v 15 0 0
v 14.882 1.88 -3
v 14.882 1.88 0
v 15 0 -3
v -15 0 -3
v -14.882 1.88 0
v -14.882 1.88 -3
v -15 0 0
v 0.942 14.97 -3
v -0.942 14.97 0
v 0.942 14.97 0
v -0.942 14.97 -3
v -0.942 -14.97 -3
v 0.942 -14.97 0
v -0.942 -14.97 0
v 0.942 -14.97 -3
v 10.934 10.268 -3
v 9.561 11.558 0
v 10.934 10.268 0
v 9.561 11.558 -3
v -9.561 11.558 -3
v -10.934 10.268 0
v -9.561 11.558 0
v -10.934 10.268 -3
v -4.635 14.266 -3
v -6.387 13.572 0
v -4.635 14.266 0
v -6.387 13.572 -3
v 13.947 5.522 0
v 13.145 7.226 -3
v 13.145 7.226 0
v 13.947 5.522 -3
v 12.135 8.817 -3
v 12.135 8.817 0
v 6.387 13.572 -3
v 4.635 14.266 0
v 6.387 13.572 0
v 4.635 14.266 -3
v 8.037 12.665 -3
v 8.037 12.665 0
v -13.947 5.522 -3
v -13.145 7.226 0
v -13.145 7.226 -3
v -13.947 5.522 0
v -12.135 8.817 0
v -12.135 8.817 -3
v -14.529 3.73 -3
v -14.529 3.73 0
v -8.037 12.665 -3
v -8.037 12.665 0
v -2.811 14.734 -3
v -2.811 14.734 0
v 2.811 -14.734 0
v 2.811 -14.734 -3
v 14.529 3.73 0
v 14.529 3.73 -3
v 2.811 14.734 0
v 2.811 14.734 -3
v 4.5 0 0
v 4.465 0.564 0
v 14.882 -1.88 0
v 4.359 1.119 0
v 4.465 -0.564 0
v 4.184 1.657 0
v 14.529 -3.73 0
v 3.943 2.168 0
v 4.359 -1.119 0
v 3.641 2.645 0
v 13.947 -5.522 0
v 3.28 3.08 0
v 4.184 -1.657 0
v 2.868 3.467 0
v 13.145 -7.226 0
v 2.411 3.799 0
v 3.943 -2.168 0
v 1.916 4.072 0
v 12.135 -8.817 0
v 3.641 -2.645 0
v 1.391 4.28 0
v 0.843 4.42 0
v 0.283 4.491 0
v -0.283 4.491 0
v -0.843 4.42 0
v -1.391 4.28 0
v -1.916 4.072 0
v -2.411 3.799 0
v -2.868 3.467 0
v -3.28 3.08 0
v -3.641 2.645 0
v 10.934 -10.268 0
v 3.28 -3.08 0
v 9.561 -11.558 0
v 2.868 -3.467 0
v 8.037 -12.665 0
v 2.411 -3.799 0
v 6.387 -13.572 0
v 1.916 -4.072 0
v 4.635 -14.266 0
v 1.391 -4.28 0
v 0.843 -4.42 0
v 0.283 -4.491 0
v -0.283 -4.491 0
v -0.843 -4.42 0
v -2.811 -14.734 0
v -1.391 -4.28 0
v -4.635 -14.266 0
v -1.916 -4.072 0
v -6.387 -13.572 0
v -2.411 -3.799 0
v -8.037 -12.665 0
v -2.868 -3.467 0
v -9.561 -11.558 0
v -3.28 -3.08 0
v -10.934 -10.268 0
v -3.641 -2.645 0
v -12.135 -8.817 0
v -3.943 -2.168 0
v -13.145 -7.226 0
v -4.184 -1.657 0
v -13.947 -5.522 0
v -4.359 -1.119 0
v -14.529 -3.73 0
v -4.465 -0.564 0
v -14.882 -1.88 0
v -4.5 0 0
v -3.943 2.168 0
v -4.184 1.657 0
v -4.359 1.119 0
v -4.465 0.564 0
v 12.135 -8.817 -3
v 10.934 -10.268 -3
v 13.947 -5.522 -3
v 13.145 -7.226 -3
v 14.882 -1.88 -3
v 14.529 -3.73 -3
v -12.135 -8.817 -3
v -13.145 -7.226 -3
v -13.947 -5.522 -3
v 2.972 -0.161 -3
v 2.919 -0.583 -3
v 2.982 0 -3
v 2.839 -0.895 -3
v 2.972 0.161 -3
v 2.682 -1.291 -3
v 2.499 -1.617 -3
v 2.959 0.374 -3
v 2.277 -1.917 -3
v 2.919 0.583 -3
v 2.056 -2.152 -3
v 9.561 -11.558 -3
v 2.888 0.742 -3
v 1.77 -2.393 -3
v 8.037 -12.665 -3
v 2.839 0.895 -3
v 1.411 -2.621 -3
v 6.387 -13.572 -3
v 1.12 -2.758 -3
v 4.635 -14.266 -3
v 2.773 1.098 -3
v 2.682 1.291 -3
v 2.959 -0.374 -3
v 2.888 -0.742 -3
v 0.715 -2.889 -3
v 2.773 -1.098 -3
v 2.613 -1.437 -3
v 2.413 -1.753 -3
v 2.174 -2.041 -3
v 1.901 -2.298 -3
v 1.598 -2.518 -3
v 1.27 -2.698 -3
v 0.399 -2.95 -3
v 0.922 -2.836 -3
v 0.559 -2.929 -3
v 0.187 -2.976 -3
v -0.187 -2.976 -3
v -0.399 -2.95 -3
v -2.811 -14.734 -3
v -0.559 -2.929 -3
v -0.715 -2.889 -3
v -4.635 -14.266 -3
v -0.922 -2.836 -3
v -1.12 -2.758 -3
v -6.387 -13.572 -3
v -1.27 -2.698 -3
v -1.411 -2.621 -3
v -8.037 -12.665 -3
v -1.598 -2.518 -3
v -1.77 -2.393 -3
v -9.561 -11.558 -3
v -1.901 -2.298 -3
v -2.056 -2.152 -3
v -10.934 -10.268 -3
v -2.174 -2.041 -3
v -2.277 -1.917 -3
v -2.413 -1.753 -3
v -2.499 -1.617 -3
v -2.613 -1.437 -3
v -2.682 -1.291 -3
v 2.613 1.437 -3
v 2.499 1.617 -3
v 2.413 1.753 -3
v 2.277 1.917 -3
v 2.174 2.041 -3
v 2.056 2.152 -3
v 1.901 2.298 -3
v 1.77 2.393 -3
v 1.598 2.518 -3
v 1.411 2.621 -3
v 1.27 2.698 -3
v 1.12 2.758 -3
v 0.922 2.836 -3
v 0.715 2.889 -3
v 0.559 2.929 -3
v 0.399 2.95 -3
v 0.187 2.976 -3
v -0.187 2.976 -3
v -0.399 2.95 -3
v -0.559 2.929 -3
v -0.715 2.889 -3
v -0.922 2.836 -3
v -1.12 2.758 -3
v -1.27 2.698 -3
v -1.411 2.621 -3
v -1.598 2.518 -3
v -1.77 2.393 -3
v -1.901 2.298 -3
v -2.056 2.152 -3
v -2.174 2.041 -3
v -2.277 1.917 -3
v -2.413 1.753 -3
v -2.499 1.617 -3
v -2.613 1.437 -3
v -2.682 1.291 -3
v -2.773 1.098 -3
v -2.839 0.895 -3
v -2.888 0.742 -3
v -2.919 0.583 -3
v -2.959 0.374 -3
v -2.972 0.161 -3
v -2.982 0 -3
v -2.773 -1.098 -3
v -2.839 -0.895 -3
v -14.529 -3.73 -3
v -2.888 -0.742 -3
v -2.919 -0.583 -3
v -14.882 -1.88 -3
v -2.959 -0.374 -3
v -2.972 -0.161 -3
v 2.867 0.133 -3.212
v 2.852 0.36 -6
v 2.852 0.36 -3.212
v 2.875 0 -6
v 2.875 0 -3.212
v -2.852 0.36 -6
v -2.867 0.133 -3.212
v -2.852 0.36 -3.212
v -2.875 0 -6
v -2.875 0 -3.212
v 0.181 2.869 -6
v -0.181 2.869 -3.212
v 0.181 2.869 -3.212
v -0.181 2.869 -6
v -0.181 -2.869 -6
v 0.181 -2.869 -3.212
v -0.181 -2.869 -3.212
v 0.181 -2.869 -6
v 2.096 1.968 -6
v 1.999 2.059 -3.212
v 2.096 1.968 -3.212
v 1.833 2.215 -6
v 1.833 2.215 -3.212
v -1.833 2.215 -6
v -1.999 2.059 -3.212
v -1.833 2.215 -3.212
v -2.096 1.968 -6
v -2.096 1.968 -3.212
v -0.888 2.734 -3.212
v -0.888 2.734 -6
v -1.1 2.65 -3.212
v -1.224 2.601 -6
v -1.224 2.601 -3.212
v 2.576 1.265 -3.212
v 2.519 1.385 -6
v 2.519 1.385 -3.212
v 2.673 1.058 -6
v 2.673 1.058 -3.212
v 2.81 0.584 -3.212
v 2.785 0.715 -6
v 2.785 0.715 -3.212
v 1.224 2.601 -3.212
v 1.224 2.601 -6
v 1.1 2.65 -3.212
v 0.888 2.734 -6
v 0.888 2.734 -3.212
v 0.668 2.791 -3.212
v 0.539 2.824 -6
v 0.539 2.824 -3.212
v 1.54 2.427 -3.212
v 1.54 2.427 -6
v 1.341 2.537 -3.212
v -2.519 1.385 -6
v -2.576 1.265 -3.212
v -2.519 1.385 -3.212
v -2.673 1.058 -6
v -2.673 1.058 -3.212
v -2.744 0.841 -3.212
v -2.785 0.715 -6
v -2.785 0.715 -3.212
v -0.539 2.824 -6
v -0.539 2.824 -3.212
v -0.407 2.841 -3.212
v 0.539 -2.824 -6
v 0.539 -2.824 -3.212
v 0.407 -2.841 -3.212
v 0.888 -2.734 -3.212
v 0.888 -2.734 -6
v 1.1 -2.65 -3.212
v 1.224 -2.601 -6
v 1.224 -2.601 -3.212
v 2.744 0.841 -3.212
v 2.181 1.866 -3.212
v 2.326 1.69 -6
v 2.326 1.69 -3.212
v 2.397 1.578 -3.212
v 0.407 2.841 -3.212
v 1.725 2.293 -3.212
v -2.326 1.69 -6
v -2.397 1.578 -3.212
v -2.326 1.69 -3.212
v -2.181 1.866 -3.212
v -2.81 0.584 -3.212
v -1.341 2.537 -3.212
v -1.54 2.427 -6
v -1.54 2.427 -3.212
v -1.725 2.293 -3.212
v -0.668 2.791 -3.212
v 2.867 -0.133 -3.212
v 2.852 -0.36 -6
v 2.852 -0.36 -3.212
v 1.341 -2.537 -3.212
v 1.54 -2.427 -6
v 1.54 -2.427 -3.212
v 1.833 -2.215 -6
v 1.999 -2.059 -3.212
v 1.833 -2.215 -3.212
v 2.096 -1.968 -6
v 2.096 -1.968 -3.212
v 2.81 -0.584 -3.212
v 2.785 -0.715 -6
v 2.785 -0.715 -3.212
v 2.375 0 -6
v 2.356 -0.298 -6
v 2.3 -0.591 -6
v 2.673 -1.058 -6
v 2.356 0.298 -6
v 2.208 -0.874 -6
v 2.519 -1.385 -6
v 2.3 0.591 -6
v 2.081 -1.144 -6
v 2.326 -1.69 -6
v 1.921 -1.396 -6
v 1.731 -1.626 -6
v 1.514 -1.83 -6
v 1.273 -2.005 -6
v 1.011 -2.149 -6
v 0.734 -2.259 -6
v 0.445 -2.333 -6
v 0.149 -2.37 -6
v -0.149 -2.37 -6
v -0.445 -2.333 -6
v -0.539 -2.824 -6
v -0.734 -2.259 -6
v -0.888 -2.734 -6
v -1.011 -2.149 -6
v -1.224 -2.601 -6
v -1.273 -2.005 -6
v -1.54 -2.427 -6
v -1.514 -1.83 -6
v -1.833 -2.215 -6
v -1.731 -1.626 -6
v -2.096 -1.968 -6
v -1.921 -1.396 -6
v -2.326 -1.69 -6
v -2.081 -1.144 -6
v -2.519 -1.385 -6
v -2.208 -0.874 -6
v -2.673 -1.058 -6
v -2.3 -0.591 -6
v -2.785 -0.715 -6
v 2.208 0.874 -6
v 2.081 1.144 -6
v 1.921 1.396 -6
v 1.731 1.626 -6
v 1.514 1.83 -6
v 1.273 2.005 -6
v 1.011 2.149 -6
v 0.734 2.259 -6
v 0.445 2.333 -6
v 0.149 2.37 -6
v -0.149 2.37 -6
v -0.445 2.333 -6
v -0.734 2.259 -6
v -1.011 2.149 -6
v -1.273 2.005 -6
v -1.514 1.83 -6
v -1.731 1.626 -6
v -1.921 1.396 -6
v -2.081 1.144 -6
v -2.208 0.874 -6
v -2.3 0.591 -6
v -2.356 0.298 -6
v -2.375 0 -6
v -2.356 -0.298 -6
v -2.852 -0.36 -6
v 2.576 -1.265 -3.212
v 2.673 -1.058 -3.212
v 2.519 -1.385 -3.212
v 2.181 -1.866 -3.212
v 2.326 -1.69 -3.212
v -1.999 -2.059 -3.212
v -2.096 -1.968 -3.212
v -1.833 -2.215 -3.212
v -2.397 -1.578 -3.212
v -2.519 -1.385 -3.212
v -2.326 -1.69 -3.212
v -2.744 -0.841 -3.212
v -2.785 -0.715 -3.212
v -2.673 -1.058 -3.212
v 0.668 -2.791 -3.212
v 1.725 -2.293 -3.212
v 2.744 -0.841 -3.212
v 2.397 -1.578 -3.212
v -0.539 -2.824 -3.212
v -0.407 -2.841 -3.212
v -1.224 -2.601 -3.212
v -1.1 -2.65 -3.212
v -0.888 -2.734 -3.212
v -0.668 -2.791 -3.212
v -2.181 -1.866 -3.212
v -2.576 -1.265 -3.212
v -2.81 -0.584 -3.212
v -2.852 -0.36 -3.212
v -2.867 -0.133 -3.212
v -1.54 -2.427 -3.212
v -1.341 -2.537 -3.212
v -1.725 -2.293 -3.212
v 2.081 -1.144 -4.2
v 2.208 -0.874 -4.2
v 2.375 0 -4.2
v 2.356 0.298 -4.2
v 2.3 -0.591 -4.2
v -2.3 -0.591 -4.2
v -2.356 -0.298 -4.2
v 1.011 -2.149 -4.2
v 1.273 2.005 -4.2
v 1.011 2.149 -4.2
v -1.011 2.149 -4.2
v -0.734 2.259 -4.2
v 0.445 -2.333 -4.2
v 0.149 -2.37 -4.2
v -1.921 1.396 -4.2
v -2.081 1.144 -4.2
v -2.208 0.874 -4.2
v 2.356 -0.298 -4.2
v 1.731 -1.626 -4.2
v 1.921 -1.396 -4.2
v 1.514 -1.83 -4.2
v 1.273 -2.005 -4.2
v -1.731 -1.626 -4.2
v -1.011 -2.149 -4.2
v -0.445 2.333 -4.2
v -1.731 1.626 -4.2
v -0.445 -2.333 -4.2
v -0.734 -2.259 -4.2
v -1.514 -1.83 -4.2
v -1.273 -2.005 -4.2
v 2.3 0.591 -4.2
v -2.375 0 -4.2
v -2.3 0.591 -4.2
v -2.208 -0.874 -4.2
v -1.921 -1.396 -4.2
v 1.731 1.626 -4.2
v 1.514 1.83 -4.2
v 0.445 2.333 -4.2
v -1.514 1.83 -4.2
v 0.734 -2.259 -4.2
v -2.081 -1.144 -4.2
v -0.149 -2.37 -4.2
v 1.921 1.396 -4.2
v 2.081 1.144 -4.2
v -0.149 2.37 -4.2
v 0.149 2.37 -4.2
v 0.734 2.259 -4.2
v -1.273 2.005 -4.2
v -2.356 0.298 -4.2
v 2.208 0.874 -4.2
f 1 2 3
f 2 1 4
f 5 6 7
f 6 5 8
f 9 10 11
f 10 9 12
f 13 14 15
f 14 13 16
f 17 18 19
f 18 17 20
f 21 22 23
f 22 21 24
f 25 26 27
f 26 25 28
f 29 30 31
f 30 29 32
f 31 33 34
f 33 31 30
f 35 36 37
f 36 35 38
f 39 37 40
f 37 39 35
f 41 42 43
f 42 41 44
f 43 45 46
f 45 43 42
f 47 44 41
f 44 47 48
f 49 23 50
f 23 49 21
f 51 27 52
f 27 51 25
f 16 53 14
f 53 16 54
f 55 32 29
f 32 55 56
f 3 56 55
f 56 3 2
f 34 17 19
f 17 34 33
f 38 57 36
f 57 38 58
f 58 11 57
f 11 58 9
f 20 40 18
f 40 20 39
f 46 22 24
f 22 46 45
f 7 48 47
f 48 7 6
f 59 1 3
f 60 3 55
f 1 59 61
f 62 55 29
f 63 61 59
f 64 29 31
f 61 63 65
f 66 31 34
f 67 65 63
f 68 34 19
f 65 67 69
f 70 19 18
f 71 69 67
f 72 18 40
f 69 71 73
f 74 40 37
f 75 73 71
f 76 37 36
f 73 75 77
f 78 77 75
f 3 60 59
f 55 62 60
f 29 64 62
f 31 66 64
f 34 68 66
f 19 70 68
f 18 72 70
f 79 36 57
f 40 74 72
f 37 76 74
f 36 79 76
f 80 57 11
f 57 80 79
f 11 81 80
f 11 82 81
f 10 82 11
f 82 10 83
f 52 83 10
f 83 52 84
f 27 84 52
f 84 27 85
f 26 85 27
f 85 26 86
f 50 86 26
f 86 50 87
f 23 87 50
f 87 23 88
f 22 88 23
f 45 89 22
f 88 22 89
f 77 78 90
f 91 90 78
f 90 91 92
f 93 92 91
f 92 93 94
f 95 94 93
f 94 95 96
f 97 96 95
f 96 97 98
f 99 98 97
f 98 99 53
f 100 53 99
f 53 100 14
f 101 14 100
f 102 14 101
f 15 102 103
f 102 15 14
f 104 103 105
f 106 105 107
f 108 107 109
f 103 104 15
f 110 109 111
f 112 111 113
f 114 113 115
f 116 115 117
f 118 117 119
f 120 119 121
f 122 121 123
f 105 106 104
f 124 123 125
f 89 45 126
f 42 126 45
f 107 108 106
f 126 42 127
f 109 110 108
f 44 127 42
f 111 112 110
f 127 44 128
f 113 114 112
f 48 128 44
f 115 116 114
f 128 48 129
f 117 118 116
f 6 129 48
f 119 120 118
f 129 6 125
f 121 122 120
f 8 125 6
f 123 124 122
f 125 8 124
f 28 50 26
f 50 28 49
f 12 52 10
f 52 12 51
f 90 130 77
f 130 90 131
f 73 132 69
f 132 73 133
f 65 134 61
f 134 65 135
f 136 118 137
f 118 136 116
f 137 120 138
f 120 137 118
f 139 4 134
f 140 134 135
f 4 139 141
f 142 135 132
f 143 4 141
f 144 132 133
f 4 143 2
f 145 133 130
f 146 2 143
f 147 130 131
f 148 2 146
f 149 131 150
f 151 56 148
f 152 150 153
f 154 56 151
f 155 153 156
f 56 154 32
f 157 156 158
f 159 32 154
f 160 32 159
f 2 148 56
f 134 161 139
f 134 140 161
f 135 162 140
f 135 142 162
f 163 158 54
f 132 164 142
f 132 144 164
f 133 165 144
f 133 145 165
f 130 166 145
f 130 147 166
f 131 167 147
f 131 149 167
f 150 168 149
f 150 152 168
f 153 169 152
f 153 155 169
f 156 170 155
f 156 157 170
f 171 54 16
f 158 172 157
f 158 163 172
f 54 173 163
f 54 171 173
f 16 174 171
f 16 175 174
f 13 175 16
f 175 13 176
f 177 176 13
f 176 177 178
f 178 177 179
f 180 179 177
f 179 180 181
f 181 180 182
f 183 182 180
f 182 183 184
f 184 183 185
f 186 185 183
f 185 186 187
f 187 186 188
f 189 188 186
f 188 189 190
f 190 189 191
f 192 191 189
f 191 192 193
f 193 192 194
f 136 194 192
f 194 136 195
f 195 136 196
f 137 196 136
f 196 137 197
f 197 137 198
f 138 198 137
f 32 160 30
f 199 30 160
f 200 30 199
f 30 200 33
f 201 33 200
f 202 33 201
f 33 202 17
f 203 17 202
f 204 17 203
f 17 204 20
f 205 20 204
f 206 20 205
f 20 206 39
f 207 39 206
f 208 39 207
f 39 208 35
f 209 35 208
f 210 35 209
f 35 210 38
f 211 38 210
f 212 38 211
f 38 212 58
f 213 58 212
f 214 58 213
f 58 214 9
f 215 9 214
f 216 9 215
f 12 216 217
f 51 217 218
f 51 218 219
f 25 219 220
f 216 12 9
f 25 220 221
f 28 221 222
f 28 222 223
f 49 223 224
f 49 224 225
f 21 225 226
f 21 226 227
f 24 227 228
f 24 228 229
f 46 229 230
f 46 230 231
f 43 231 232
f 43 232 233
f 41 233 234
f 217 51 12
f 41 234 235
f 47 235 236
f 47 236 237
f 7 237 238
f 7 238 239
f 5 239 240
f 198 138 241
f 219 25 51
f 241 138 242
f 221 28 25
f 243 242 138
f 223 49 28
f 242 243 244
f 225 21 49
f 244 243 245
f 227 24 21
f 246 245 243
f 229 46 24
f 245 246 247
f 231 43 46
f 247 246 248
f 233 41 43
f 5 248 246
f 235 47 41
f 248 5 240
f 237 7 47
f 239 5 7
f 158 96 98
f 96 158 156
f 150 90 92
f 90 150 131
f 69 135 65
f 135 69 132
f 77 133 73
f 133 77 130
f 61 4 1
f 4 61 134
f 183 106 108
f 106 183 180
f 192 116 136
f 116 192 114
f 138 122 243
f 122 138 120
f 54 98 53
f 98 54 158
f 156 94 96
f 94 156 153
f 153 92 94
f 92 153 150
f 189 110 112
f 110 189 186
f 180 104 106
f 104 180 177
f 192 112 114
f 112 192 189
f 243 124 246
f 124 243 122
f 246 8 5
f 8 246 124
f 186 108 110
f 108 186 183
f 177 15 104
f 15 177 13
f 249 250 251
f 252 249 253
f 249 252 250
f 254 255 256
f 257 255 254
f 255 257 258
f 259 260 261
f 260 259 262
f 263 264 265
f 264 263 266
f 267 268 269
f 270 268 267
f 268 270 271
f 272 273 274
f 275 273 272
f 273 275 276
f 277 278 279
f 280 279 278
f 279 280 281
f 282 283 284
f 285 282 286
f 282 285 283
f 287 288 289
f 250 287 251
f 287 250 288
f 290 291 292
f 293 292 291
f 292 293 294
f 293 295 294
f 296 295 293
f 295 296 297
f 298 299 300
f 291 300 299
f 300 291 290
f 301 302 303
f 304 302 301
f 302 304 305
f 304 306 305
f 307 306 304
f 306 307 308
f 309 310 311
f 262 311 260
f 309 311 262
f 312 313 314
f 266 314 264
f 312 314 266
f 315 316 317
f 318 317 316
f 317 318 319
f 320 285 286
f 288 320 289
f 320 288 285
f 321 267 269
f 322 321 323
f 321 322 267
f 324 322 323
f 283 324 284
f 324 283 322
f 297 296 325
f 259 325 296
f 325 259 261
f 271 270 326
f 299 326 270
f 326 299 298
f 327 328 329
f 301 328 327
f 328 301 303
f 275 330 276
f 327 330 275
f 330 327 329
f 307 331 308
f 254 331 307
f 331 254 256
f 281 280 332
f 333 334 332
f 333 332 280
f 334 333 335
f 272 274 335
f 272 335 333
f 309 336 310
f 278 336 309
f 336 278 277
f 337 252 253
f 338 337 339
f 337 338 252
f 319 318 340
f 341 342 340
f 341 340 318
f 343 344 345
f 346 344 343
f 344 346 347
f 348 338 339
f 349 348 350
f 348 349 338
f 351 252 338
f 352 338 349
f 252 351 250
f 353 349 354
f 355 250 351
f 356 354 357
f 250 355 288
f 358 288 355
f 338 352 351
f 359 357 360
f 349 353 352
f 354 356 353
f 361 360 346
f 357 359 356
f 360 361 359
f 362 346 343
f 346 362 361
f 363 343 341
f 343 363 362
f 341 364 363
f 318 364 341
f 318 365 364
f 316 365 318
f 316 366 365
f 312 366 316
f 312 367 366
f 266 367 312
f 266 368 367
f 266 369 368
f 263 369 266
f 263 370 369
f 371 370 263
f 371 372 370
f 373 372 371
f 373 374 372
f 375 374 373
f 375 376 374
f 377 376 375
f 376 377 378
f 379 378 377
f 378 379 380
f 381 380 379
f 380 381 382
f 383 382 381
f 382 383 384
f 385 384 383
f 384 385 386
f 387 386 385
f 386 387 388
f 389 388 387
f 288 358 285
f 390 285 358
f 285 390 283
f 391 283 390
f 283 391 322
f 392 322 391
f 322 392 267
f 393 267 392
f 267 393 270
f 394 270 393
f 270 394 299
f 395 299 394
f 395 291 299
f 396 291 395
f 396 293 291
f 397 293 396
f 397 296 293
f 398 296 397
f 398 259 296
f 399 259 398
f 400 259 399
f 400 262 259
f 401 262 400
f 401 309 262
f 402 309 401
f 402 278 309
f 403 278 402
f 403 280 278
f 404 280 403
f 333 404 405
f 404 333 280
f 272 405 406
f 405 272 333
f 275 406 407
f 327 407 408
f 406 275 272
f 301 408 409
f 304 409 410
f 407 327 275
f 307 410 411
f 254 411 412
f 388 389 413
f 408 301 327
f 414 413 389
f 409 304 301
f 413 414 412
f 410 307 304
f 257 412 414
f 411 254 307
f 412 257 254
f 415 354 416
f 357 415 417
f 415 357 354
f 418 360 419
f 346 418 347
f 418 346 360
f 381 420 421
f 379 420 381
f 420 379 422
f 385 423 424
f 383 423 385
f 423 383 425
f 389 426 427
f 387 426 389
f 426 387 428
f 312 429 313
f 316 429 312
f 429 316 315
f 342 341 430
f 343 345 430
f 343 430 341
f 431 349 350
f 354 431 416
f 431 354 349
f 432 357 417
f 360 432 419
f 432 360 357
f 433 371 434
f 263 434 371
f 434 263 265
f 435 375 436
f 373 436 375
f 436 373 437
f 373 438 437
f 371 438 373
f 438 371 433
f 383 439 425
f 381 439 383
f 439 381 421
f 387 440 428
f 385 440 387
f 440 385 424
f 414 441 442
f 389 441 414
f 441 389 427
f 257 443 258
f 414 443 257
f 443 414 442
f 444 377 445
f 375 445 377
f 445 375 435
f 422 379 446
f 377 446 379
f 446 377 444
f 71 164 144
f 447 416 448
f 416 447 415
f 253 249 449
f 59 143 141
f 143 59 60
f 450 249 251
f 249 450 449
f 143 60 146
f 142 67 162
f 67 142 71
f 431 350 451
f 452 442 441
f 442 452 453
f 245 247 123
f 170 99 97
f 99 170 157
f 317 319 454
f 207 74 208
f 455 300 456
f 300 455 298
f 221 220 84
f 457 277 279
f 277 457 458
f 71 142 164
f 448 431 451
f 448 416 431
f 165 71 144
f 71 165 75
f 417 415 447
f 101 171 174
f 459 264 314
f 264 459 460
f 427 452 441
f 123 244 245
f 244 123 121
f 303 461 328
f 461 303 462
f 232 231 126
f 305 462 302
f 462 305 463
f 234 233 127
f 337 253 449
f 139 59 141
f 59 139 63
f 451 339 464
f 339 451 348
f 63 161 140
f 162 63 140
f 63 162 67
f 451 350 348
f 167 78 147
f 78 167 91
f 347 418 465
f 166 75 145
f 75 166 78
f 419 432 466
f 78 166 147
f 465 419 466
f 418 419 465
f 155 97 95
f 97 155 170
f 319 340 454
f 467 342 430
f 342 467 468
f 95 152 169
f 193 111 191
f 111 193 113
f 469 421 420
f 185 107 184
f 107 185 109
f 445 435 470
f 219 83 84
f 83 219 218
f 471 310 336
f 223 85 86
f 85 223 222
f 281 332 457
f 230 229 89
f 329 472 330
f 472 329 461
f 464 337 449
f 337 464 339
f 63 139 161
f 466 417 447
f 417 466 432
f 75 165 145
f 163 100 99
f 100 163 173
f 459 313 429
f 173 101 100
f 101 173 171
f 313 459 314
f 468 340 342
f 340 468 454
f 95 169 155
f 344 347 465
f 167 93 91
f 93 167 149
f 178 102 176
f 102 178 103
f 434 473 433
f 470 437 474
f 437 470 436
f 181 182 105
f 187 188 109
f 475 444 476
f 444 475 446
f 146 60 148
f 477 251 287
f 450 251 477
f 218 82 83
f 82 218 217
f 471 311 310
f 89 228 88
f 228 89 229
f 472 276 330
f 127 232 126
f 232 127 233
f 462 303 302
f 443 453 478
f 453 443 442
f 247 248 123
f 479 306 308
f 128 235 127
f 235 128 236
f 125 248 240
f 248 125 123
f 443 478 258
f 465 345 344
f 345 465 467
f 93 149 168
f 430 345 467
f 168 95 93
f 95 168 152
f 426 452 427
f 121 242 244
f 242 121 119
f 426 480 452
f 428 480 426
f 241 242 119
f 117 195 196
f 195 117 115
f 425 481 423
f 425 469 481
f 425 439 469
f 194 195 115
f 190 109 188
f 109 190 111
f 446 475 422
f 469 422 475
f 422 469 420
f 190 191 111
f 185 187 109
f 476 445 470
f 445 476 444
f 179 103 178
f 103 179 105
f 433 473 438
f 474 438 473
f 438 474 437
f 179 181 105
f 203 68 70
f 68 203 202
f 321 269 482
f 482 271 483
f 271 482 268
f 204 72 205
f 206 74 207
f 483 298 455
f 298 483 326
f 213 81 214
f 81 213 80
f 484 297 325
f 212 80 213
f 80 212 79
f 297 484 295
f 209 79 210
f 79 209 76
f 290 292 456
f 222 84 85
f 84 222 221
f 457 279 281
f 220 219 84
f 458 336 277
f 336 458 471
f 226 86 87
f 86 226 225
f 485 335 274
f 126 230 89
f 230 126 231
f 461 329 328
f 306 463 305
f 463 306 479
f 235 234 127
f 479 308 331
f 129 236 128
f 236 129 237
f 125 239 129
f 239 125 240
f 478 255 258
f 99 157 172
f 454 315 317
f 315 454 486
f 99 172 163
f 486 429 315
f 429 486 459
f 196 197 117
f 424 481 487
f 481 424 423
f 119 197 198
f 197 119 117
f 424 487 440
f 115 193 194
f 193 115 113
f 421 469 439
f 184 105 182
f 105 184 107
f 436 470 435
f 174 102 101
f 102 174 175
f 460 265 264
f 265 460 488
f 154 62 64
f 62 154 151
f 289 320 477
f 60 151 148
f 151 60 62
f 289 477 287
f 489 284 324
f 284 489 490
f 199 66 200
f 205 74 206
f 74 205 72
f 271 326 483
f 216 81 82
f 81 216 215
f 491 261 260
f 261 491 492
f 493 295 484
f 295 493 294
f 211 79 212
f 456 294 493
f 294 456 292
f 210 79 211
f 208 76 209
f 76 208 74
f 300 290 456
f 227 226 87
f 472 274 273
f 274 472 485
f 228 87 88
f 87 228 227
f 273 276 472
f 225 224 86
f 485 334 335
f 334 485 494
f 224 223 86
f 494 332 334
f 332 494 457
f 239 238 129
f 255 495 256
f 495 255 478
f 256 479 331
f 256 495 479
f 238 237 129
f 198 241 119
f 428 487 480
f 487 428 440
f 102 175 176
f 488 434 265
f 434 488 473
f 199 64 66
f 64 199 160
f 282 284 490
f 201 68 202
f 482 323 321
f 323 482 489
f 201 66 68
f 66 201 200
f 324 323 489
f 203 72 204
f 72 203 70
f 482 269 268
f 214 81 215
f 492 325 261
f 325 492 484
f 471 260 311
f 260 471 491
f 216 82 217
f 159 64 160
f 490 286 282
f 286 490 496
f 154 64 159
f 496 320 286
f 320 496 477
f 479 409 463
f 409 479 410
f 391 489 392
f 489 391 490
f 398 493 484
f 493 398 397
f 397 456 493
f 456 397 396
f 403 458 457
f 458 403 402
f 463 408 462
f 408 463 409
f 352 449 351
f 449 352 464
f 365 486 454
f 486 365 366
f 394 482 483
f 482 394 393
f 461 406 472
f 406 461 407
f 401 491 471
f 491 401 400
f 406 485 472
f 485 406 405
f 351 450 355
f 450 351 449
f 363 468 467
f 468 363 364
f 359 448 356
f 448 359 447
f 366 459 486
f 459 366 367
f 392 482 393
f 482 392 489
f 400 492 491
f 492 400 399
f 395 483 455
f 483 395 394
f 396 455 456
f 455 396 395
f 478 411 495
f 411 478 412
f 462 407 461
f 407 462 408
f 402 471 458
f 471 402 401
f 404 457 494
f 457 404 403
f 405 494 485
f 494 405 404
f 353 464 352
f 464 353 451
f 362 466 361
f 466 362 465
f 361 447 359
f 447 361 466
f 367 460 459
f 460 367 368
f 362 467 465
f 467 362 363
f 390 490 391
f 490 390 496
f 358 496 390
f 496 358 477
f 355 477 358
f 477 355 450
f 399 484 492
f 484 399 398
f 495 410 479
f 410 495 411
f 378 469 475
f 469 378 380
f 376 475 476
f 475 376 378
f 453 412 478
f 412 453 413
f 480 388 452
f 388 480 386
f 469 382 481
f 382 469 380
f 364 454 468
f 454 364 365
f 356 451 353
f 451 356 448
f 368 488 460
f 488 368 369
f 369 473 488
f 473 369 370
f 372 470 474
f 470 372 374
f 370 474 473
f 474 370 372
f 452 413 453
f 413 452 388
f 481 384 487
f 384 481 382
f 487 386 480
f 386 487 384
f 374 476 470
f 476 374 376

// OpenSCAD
$fn = 50;


difference() {
	union() {
		translate(v = [0, 0, -3.0000000000]) {
			cylinder(h = 3, r = 15.0000000000);
		}
		translate(v = [0, 0, -6.0000000000]) {
			cylinder(h = 6, r = 2.8750000000);
		}
	}
	union() {
		translate(v = [0, 0, 0]) {
			rotate(a = [0, 0, 0]) {
				difference() {
					union() {
						translate(v = [0, 0, -6.0000000000]) {
							cylinder(h = 6, r = 2.2500000000);
						}
						translate(v = [0, 0, -4.2000000000]) {
							cylinder(h = 4.2000000000, r1 = 2.3750000000, r2 = 4.5000000000);
						}
						translate(v = [0, 0, -6.0000000000]) {
							cylinder(h = 6, r = 2.3750000000);
						}
						translate(v = [0, 0, -6.0000000000]) {
							cylinder(h = 6, r = 2.2500000000);
						}
					}
					union();
				}
			}
		}
	}
}
